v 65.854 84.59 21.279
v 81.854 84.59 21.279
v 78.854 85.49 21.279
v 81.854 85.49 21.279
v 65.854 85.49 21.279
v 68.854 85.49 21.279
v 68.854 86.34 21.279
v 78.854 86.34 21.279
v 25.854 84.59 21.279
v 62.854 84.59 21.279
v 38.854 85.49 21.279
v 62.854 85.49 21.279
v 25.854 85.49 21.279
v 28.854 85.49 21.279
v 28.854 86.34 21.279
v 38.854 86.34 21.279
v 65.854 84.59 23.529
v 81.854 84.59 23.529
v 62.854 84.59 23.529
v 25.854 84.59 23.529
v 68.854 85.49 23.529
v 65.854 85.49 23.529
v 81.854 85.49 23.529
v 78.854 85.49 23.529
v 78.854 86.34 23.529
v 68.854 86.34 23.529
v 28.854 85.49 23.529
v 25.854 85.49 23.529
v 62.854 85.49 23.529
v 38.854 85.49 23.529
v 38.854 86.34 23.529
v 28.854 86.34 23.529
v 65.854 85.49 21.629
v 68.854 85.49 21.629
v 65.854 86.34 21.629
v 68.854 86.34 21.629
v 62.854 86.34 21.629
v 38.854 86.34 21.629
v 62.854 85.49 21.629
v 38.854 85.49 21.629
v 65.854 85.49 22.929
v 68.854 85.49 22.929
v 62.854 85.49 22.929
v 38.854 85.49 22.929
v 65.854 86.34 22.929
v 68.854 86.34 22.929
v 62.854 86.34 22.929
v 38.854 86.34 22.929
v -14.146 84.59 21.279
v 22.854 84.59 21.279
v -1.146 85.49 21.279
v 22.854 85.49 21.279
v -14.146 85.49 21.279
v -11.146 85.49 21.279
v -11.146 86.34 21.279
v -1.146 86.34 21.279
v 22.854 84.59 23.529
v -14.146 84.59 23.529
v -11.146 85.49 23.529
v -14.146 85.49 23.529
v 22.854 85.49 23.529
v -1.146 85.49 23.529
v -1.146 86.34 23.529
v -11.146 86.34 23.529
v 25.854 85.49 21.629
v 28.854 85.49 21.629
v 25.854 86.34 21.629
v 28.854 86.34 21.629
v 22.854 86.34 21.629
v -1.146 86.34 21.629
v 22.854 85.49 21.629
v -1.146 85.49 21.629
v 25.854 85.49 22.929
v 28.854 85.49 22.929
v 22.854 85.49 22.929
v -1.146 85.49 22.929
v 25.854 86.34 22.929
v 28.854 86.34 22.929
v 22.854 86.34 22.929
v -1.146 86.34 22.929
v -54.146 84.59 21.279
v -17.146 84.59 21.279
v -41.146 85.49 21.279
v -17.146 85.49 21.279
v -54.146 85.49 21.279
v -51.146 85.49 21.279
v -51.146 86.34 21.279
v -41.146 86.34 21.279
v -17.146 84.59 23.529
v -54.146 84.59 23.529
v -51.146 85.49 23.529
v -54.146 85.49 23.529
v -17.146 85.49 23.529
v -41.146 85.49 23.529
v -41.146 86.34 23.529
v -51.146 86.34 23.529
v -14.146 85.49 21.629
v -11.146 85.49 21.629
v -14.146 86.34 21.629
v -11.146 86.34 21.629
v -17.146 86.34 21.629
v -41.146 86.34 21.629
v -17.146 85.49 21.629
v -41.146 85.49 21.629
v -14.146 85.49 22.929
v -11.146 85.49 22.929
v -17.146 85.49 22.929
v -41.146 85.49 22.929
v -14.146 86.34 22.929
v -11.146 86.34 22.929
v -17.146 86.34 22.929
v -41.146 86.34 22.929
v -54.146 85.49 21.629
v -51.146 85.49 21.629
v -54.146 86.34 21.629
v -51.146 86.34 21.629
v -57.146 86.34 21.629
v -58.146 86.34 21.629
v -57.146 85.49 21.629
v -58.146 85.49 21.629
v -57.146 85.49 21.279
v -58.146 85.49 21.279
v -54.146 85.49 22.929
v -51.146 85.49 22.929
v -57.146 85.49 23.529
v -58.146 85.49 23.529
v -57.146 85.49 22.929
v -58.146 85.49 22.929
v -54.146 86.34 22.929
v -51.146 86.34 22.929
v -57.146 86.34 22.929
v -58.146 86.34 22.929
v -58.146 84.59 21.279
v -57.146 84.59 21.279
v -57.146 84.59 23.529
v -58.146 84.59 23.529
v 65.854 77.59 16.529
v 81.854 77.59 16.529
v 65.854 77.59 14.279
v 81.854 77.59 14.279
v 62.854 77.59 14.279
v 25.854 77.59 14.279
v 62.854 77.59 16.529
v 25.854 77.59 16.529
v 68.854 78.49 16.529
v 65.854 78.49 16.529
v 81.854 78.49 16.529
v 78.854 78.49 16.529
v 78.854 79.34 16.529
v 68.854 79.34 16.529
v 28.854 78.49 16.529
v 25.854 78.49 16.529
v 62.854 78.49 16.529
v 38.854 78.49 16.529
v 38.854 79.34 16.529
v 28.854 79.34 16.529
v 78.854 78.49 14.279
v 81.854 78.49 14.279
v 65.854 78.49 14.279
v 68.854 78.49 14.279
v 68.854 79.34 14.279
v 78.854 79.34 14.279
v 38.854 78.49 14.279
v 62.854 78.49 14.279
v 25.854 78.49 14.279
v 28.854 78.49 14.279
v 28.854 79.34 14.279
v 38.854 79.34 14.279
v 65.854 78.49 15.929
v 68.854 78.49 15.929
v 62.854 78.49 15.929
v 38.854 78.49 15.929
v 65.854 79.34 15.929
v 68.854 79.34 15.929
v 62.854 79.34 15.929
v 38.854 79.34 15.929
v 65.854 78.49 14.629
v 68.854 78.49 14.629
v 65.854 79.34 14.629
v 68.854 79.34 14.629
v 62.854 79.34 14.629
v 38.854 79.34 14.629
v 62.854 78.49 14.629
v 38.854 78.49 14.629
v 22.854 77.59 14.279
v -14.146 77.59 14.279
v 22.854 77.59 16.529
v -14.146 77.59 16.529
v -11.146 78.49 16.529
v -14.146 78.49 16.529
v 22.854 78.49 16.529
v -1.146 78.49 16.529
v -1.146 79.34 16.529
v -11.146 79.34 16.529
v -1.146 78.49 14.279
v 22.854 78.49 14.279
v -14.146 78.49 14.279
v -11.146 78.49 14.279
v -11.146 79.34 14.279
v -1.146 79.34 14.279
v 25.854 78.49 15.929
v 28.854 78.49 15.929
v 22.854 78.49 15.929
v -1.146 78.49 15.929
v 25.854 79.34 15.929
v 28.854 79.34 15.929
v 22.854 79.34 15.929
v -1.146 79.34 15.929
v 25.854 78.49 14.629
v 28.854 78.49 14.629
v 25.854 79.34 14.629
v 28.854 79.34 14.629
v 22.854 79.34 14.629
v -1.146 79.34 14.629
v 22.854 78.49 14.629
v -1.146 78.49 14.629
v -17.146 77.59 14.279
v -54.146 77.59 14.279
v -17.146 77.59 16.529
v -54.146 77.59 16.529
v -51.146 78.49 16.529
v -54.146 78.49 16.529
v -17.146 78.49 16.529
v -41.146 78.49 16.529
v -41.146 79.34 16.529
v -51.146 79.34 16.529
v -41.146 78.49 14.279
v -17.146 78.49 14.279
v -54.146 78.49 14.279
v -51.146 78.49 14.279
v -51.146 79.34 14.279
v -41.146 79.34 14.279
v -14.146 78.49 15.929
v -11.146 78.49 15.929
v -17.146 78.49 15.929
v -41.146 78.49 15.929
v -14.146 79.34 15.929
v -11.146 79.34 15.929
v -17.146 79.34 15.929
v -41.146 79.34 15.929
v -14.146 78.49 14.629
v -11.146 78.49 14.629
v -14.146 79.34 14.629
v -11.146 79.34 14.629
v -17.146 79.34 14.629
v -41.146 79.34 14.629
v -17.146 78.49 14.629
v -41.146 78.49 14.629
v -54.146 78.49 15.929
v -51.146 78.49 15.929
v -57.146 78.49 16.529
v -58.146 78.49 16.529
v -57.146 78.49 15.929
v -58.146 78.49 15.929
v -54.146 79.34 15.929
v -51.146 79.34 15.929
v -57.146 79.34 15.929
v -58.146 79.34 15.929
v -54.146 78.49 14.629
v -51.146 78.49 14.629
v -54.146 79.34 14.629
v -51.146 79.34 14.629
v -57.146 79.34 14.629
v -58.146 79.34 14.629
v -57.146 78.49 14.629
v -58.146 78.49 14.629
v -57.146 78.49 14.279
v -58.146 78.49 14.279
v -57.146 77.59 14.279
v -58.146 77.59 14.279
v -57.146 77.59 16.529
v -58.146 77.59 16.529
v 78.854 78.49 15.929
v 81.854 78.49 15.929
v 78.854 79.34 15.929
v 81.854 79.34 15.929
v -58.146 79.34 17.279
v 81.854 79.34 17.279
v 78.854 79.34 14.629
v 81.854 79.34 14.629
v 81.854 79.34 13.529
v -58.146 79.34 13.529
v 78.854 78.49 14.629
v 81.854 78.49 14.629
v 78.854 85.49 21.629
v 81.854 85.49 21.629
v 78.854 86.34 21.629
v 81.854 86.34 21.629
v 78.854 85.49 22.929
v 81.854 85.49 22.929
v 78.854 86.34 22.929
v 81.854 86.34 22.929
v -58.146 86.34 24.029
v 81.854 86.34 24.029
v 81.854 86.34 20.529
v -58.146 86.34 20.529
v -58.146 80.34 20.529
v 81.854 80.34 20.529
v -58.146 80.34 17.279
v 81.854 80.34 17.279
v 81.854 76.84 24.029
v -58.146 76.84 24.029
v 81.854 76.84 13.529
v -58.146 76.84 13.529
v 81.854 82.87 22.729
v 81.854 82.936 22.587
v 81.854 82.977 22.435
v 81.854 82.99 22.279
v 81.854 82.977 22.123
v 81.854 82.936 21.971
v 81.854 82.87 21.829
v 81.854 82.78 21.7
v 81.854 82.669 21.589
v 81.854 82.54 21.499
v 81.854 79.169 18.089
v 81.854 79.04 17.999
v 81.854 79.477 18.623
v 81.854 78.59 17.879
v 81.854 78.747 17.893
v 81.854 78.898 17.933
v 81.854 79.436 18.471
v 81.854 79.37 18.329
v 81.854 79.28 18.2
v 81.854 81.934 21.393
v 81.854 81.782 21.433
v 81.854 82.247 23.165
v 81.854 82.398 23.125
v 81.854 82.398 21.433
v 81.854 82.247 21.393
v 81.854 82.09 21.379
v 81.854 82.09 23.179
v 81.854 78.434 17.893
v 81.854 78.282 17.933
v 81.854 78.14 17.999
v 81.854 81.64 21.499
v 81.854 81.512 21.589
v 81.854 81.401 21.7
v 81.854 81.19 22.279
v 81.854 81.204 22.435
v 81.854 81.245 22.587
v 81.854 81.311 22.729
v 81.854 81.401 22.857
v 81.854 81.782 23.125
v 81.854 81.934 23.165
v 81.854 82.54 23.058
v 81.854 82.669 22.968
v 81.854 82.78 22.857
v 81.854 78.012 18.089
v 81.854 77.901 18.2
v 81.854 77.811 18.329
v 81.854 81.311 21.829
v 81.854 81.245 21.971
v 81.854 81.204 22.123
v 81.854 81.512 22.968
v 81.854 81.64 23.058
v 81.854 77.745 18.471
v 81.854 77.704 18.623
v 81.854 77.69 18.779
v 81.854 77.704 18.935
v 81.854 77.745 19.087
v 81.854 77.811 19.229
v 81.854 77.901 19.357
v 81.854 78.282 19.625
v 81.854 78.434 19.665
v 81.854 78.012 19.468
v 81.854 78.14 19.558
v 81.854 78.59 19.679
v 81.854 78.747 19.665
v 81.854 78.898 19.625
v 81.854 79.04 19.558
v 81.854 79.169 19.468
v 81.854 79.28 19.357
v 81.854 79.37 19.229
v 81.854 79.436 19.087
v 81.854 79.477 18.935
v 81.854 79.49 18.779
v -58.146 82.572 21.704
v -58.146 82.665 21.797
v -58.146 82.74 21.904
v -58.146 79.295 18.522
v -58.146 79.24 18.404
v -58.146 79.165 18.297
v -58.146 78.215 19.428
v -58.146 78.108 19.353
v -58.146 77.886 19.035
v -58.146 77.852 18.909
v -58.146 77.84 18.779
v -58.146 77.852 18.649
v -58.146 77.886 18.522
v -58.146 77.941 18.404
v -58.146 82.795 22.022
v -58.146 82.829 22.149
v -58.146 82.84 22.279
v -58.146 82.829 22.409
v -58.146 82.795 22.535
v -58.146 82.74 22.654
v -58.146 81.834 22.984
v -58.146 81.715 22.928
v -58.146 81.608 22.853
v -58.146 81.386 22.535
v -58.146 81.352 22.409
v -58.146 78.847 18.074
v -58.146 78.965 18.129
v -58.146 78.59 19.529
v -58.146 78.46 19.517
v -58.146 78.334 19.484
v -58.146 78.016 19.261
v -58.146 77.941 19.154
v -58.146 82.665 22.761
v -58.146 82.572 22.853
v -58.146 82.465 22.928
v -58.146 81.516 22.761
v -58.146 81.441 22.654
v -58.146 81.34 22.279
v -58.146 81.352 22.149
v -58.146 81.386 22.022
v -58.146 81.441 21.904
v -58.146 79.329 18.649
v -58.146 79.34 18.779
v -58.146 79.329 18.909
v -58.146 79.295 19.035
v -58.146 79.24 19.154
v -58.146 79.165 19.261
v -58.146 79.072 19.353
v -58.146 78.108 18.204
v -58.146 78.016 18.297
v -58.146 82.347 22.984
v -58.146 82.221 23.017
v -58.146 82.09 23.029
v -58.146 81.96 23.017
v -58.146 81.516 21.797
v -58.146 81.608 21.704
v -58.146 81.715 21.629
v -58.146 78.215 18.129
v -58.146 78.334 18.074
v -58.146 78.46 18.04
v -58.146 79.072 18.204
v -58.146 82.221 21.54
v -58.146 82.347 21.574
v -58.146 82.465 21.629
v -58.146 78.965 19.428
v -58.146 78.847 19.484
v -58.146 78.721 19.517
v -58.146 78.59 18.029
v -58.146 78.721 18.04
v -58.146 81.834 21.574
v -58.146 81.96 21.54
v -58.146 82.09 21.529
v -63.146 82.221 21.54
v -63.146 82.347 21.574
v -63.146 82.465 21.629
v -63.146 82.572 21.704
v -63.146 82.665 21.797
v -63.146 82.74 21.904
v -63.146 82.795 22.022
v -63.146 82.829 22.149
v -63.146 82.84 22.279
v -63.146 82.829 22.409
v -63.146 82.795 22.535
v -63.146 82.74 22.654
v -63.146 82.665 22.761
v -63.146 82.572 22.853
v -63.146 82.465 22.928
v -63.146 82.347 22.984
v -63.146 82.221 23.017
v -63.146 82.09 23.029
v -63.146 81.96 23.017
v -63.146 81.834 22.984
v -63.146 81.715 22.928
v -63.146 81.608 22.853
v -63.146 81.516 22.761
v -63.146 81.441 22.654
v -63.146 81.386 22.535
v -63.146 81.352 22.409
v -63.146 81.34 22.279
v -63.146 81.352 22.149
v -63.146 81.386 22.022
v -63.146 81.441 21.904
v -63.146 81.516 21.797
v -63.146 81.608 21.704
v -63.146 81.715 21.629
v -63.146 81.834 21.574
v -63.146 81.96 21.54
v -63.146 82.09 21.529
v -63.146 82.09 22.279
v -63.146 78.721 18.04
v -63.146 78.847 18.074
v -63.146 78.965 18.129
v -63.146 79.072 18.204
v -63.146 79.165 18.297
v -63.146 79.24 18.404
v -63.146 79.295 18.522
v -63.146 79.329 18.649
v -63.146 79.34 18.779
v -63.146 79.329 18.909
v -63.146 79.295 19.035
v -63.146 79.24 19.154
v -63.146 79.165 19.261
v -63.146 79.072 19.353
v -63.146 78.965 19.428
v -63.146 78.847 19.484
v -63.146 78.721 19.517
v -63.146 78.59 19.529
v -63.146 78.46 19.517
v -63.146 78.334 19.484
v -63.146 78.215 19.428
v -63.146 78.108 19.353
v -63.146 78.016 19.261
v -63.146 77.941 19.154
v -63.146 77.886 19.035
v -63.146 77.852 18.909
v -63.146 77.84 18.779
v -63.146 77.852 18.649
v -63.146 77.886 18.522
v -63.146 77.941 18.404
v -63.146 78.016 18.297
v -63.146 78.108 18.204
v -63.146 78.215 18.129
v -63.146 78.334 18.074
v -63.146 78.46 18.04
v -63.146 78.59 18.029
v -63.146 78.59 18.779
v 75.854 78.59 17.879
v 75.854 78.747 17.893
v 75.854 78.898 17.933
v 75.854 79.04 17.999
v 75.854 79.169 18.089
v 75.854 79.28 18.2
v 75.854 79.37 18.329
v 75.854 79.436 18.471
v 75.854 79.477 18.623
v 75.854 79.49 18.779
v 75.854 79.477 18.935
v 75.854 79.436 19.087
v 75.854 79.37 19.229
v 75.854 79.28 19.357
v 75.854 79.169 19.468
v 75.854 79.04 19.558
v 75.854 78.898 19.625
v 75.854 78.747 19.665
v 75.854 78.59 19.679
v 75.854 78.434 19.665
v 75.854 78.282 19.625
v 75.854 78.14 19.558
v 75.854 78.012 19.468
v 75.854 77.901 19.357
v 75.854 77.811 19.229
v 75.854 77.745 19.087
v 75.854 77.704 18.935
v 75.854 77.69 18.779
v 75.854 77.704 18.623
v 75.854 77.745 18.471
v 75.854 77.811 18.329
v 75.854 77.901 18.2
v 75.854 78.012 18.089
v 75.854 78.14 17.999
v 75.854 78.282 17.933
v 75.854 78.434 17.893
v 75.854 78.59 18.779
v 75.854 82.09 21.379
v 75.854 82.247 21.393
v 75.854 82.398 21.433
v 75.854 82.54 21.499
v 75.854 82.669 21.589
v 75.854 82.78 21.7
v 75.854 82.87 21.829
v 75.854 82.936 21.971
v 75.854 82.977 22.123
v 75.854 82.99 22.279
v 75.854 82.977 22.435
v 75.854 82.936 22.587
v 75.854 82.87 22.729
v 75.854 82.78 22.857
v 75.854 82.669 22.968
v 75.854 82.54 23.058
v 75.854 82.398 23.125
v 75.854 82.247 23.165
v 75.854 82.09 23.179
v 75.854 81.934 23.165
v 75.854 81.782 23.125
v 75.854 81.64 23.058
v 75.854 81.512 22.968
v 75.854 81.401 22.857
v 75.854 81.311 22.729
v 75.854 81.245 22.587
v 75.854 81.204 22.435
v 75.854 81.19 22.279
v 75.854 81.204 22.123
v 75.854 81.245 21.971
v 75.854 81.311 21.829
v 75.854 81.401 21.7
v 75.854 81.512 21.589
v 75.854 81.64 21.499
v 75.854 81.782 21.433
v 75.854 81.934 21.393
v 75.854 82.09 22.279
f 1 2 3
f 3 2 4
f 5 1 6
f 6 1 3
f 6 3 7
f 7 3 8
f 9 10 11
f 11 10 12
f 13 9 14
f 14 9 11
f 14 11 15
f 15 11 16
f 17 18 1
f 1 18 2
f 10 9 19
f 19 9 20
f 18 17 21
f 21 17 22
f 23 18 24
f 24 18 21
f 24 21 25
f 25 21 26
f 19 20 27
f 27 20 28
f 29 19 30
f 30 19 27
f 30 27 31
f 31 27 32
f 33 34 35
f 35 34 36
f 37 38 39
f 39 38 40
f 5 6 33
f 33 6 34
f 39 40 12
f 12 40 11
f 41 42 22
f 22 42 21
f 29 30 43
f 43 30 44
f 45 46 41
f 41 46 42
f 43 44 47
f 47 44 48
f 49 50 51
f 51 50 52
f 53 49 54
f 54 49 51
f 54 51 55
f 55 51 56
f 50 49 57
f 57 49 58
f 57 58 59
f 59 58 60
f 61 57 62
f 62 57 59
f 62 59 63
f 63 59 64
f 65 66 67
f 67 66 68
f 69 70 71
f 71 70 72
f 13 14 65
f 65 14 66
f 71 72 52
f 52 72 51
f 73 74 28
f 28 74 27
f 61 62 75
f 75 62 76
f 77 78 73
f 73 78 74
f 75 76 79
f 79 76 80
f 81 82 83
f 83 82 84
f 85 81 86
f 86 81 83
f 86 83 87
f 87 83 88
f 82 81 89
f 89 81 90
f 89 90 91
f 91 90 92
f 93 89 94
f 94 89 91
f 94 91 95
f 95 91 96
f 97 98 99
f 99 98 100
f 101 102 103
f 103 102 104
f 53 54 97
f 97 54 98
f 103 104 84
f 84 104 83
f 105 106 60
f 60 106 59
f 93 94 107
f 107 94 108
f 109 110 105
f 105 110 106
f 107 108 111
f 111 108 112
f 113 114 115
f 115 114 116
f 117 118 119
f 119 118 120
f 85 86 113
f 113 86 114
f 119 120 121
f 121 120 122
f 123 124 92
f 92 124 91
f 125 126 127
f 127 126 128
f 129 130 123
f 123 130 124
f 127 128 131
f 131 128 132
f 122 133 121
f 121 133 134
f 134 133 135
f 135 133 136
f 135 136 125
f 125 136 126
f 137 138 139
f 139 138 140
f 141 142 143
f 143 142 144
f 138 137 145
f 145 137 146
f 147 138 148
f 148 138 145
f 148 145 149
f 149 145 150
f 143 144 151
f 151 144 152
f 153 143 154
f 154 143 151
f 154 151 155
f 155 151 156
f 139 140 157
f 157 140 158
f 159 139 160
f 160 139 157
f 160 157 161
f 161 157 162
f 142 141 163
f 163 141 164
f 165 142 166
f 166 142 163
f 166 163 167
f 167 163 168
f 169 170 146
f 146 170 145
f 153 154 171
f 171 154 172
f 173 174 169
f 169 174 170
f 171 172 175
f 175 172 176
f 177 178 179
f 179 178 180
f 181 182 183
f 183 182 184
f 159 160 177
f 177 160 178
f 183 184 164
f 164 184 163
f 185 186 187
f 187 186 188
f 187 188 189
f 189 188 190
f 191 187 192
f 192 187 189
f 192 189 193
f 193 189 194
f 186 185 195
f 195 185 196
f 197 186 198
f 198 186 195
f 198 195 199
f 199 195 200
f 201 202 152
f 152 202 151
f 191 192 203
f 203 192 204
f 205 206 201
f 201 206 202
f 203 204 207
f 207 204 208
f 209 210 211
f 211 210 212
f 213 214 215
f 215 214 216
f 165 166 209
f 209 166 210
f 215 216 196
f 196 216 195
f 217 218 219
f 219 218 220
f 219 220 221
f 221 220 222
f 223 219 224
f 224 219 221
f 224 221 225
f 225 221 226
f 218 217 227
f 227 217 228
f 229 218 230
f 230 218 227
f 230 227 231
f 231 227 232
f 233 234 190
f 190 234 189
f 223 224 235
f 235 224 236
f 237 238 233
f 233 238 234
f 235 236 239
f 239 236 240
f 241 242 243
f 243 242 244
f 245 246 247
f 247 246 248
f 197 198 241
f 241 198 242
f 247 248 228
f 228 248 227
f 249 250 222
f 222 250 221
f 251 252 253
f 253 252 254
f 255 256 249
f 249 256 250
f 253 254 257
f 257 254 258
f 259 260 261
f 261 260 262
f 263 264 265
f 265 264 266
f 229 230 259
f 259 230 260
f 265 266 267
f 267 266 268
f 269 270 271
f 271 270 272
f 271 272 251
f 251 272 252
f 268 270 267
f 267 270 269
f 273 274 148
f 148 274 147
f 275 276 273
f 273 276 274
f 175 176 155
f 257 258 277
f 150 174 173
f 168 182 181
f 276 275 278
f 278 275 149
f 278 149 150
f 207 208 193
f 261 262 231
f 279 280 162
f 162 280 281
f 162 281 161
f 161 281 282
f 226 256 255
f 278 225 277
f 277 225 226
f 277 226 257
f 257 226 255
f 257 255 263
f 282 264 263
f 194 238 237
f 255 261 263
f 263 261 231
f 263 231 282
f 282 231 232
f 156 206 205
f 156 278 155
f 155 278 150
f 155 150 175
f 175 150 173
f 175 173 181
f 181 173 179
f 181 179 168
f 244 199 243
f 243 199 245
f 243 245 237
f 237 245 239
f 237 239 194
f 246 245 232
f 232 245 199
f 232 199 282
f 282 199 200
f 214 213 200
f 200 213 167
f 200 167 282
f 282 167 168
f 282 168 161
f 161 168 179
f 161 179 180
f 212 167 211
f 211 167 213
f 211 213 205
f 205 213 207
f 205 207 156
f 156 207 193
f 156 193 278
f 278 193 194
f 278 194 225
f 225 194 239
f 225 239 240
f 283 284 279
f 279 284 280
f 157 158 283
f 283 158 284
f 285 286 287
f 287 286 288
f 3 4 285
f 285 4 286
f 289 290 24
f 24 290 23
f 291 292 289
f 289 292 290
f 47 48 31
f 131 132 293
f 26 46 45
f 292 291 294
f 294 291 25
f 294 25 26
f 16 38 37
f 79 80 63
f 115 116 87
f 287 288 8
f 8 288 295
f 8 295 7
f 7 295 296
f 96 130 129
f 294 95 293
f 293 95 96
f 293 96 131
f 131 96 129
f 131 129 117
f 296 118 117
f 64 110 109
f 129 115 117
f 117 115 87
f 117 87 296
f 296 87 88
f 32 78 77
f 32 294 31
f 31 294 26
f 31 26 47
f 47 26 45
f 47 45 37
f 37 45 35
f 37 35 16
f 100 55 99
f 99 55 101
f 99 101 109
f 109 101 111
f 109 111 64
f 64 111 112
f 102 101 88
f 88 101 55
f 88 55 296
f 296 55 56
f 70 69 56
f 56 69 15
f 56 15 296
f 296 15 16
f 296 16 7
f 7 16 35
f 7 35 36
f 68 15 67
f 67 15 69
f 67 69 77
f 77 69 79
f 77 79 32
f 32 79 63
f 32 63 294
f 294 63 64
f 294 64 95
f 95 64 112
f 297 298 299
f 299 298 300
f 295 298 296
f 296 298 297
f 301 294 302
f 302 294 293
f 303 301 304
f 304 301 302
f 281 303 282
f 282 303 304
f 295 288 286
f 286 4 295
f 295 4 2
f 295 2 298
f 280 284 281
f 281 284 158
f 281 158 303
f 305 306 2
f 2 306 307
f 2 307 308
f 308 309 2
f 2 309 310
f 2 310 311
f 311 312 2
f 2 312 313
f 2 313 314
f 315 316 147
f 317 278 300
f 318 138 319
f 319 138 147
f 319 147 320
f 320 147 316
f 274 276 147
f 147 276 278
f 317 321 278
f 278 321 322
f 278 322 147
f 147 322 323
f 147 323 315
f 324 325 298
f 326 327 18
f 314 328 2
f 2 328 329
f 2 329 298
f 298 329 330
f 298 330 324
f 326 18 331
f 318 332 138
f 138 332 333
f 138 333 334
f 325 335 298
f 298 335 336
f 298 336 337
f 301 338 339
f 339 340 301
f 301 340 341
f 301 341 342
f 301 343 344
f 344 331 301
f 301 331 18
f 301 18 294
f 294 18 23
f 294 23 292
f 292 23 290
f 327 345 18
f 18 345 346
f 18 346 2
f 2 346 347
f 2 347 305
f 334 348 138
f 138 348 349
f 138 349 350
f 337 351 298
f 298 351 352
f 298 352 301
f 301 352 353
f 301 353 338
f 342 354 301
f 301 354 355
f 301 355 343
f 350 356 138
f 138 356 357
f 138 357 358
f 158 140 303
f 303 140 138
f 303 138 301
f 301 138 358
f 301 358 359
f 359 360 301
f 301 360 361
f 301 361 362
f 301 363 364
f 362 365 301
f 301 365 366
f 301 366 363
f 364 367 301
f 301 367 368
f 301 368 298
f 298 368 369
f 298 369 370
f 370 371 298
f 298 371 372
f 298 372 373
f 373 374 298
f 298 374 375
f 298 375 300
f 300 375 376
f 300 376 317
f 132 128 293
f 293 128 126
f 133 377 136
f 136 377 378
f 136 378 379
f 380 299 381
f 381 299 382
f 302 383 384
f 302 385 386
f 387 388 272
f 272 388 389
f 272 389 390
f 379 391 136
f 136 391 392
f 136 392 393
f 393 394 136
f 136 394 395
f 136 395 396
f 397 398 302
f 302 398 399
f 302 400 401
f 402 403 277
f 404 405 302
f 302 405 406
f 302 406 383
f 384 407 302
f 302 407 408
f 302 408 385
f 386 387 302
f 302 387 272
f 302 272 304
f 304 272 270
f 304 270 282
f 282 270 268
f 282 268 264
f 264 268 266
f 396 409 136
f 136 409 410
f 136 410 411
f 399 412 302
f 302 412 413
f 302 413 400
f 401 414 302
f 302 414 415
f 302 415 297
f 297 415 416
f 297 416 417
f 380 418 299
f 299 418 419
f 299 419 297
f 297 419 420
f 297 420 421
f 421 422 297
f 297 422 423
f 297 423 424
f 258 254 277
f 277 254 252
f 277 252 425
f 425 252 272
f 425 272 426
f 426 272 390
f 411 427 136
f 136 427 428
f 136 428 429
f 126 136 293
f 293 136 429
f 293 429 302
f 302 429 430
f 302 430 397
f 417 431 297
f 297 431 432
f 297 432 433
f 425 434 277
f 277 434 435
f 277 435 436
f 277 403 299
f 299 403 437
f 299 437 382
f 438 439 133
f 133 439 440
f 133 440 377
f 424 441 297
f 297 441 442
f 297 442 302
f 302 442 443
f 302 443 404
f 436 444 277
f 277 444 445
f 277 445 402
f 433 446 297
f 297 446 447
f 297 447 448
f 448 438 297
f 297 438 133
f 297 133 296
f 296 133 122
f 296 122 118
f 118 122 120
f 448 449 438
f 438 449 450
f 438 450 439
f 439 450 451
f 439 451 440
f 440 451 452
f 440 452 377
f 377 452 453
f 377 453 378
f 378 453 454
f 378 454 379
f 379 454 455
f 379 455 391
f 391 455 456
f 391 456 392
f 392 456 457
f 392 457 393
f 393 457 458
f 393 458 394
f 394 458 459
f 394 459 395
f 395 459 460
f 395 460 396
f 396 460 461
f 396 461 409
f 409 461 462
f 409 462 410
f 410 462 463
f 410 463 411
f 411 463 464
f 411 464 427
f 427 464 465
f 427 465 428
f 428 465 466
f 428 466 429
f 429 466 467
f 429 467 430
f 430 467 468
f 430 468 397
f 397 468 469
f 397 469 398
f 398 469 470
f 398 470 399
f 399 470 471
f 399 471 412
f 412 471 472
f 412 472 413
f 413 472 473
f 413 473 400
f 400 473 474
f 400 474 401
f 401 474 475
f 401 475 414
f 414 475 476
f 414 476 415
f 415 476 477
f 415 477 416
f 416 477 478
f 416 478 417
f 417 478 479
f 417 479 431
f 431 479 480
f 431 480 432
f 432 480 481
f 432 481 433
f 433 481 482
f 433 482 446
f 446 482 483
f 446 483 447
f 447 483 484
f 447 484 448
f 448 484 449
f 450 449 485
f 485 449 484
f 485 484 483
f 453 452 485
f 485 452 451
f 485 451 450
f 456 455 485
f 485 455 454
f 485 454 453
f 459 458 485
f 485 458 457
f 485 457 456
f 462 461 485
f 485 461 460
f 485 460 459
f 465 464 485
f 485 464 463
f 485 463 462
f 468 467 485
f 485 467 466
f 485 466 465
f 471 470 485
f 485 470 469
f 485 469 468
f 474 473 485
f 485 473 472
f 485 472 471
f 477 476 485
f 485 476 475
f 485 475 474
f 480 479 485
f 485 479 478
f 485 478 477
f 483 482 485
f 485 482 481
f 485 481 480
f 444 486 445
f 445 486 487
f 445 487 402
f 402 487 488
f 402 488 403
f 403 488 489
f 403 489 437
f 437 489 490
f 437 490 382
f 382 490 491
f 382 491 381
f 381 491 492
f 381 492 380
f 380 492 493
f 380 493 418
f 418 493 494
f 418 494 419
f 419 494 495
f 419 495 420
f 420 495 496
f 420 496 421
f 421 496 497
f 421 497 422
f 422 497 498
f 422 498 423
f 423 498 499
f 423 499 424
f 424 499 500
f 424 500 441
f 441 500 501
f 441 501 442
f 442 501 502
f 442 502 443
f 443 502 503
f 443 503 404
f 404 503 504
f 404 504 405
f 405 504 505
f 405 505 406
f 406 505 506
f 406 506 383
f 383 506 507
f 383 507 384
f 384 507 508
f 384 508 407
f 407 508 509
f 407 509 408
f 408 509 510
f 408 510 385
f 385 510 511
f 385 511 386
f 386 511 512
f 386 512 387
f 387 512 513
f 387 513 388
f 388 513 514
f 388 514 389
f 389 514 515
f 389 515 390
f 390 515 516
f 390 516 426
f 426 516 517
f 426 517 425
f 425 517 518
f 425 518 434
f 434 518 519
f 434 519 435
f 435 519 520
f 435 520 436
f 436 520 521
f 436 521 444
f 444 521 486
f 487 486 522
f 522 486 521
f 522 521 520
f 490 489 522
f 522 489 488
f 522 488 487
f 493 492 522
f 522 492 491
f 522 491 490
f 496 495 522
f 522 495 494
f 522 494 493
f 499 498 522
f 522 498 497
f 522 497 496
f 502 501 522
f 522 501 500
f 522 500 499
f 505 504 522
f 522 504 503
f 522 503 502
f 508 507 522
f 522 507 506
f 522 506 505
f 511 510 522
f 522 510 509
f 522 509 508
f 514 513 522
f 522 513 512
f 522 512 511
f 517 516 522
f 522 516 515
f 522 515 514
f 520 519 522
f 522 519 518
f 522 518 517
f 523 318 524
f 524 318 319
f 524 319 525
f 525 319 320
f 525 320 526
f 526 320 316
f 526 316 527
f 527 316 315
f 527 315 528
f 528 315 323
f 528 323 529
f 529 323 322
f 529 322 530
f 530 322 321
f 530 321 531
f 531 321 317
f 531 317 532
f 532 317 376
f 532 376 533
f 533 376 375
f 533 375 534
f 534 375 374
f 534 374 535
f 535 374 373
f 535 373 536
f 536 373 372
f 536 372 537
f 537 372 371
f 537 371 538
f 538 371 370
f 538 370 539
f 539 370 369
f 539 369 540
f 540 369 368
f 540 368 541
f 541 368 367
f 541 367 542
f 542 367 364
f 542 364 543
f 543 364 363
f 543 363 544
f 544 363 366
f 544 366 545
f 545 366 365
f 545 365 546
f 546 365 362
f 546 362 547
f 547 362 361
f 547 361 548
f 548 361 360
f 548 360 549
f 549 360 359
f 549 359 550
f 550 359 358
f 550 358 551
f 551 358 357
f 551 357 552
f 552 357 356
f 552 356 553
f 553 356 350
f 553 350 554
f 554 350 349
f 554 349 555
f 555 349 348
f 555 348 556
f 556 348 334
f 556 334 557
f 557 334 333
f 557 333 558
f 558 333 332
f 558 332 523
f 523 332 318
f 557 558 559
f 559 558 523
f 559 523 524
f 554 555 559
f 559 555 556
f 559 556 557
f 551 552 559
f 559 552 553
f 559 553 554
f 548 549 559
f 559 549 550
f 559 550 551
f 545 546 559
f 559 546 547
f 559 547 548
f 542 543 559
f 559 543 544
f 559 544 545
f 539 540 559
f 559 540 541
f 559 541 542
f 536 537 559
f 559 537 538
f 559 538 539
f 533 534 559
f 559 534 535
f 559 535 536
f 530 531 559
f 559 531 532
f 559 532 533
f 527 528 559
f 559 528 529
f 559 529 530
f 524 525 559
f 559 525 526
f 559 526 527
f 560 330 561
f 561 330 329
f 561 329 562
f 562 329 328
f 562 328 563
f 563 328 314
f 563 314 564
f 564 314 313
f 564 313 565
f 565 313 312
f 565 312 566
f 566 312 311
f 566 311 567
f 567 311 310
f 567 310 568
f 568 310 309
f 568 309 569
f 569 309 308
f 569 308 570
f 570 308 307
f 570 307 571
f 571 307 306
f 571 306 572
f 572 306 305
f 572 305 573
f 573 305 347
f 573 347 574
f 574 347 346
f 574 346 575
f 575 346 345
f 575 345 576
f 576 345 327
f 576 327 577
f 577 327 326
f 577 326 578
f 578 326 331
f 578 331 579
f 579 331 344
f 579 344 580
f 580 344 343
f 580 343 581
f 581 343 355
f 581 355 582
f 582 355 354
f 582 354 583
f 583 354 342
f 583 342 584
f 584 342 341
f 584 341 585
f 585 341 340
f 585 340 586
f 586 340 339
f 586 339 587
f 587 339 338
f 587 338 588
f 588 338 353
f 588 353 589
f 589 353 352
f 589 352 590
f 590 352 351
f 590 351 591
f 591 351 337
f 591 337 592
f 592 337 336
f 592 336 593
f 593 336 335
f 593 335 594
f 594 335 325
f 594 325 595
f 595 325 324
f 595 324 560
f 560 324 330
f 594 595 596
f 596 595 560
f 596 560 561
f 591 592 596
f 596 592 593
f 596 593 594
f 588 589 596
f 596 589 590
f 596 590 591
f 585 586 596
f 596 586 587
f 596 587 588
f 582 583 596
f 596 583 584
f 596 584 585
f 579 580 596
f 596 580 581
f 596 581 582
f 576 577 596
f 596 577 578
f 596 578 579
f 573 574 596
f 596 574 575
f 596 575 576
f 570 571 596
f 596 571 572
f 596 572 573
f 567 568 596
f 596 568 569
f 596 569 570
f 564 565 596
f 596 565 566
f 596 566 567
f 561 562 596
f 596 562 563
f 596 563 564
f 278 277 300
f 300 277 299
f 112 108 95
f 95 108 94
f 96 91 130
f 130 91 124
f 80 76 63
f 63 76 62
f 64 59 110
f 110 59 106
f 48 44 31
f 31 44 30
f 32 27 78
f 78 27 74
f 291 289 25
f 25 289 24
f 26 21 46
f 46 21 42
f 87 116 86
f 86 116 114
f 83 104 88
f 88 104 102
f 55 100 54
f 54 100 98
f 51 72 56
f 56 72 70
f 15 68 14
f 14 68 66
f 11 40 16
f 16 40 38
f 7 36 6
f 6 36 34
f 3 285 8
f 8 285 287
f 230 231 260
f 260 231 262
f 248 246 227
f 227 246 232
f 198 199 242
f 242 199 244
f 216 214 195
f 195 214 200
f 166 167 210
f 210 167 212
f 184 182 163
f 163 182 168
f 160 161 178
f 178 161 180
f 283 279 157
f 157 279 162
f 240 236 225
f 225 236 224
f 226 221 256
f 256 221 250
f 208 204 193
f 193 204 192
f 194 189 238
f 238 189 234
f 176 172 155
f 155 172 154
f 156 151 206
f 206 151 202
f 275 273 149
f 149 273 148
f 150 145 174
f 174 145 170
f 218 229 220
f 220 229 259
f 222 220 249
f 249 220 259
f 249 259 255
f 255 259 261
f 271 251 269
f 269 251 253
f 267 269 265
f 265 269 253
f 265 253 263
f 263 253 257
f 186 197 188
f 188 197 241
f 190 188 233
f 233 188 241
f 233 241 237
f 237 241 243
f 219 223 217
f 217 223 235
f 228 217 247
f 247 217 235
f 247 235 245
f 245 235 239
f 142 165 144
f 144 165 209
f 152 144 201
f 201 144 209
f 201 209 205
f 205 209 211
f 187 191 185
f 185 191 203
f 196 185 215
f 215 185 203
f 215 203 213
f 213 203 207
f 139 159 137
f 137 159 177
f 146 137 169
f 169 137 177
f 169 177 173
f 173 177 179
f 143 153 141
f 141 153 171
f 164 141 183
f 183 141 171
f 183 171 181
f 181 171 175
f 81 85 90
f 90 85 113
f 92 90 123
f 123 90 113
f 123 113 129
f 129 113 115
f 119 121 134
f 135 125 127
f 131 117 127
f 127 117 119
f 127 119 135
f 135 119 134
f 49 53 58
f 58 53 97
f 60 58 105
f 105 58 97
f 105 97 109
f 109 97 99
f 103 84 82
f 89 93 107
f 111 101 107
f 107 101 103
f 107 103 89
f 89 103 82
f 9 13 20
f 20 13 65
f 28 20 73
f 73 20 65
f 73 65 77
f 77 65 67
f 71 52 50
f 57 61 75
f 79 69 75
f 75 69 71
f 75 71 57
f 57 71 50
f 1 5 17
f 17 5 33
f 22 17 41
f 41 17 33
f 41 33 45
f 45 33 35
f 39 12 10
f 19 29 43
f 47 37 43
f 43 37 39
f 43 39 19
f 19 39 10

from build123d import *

# Parameters (mm, degrees)
BOSS_EXTRUDE1_DEPTH = 140
SKETCH1_5_R         = 0.75
BOSS_EXTRUDE2_DEPTH = 5
SKETCH2_R           = 0.9
SKETCH2_R_2         = 0.75
CUT_EXTRUDE1_DEPTH  = 6
SKETCH3_W           = 0.25
SKETCH3_H           = 1
CUT_EXTRUDE2_DEPTH  = 171.461242575
SKETCH4_W           = 10
SKETCH4_H           = 2.25
CUT_EXTRUDE3_DEPTH  = 86.659037056
SKETCH6_W           = 10
SKETCH6_H           = 2.25
CUT_EXTRUDE4_DEPTH  = 86.755295051
BOSS_EXTRUDE3_REACH = 87.755
SKETCH7_W           = 3
SKETCH7_H           = 2.25
SKETCH8_W           = 3
SKETCH8_H           = 2.25
BOSS_EXTRUDE4_DEPTH = 1.75


with BuildPart() as part:
    # Sketch1 → Boss-Extrude1 (new body)
    with BuildSketch(Plane(origin=(-58.146340827, 0, 0), x_dir=(0, 0, -1), z_dir=(1, 0, 0))):
        Polygon((-20.52887033, 86.340306989), (-21.62887033, 86.340306989), (-21.62887033, 85.490306989), (-21.27887033, 85.490306989), (-21.27887033, 84.590306989), (-23.52887033, 84.590306989), (-23.52887033, 85.490306989), (-22.92887033, 85.490306989), (-22.92887033, 86.340306989), (-24.02887033, 86.340306989), (-24.02887033, 76.840306989), (-13.52887033, 76.840306989), (-13.52887033, 79.340306989), (-14.62887033, 79.340306989), (-14.62887033, 78.490306989), (-14.27887033, 78.490306989), (-14.27887033, 77.590306989), (-16.52887033, 77.590306989), (-16.52887033, 78.490306989), (-15.92887033, 78.490306989), (-15.92887033, 79.340306989), (-17.02887033, 79.340306989), (-17.02887033, 80.340306989), (-20.52887033, 80.340306989), align=None)
    extrude(amount=BOSS_EXTRUDE1_DEPTH)

    # Sketch1<5> → Boss-Extrude2 (add)
    with BuildSketch(Plane(origin=(-58.146340827, 0, 0), x_dir=(0, 0, -1), z_dir=(1, 0, 0))):
        with Locations((-22.27887033, 82.090306989)):
            Circle(SKETCH1_5_R)
        with Locations((-18.77887033, 78.590306989)):
            Circle(SKETCH1_5_R)
    extrude(amount=-BOSS_EXTRUDE2_DEPTH)

    # Sketch2 → Cut-Extrude1 (cut)
    with BuildSketch(Plane(origin=(81.853659173, 0, 0), x_dir=(0, 0, -1), z_dir=(1, 0, 0))):
        with Locations((-22.27887033, 82.090306989)):
            Circle(SKETCH2_R)
        with Locations((-22.27887033, 82.090306989)):
            Circle(SKETCH2_R_2, mode=Mode.SUBTRACT)
        with Locations((-22.27887033, 82.090306989)):
            Circle(SKETCH2_R_2)
        with Locations((-18.77887033, 78.590306989)):
            Circle(SKETCH2_R)
        with Locations((-18.77887033, 78.590306989)):
            Circle(SKETCH2_R_2, mode=Mode.SUBTRACT)
        with Locations((-18.77887033, 78.590306989)):
            Circle(SKETCH2_R_2)
    extrude(amount=-CUT_EXTRUDE1_DEPTH, mode=Mode.SUBTRACT)

    # Sketch3 → Cut-Extrude2 (cut, through all)
    with BuildSketch(Plane(origin=(81.853659173, 0, 0), x_dir=(0, 0, -1), z_dir=(1, 0, 0))):
        with Locations((-17.15387033, 79.840306989)):
            Rectangle(SKETCH3_W, SKETCH3_H)
    extrude(amount=-CUT_EXTRUDE2_DEPTH, mode=Mode.SUBTRACT)

    # Sketch4 → Cut-Extrude3 (cut, through all)
    with BuildSketch(Plane(origin=(0, 84.590306989, 0), x_dir=(1, 0, 0), z_dir=(0, 1, 0))):
        with Locations((73.853659173, -22.40387033)):
            Rectangle(SKETCH4_W, SKETCH4_H)
        with Locations((33.853659173, -22.40387033)):
            Rectangle(SKETCH4_W, SKETCH4_H)
        with Locations((-6.146340827, -22.40387033)):
            Rectangle(SKETCH4_W, SKETCH4_H)
        with Locations((-46.146340827, -22.40387033)):
            Rectangle(SKETCH4_W, SKETCH4_H)
    extrude(amount=CUT_EXTRUDE3_DEPTH, mode=Mode.SUBTRACT)

    # Sketch6 → Cut-Extrude4 (cut, through all)
    with BuildSketch(Plane(origin=(0, 77.590306989, 0), x_dir=(1, 0, 0), z_dir=(0, 1, 0))):
        with Locations((73.853659173, -15.40387033)):
            Rectangle(SKETCH6_W, SKETCH6_H)
        with Locations((33.853659173, -15.40387033)):
            Rectangle(SKETCH6_W, SKETCH6_H)
        with Locations((-6.146340827, -15.40387033)):
            Rectangle(SKETCH6_W, SKETCH6_H)
        with Locations((-46.146340827, -15.40387033)):
            Rectangle(SKETCH6_W, SKETCH6_H)
    extrude(amount=CUT_EXTRUDE4_DEPTH, mode=Mode.SUBTRACT)

    # Boss-Extrude3: up to this face of the body (flat: up to its plane)
    boss_extrude3_end = Plane(part.part.faces().sort_by_distance((11.653659173, 79.340306989, 14.04137033))[0])
    # Sketch7 → Boss-Extrude3 (add, up to the picked face)
    with BuildSketch(Plane(origin=(0, 77.590306989, 0), x_dir=(1, 0, 0), z_dir=(0, 1, 0)), mode=Mode.PRIVATE) as boss_extrude3_sk1:
        with Locations((-55.646340827, -15.40387033)):
            Rectangle(SKETCH7_W, SKETCH7_H)
    boss_extrude3_tool1 = split(extrude(boss_extrude3_sk1.sketch, amount=BOSS_EXTRUDE3_REACH, mode=Mode.PRIVATE), bisect_by=boss_extrude3_end, keep=Keep.BOTH, mode=Mode.PRIVATE)
    # Sketch7 → Boss-Extrude3 (add, up to the picked face)
    with BuildSketch(Plane(origin=(0, 77.590306989, 0), x_dir=(1, 0, 0), z_dir=(0, 1, 0)), mode=Mode.PRIVATE) as boss_extrude3_sk2:
        with Locations((-15.646340827, -15.40387033)):
            Rectangle(SKETCH7_W, SKETCH7_H)
    boss_extrude3_tool2 = split(extrude(boss_extrude3_sk2.sketch, amount=BOSS_EXTRUDE3_REACH, mode=Mode.PRIVATE), bisect_by=boss_extrude3_end, keep=Keep.BOTH, mode=Mode.PRIVATE)
    # Sketch7 → Boss-Extrude3 (add, up to the picked face)
    with BuildSketch(Plane(origin=(0, 77.590306989, 0), x_dir=(1, 0, 0), z_dir=(0, 1, 0)), mode=Mode.PRIVATE) as boss_extrude3_sk3:
        with Locations((24.353659173, -15.40387033)):
            Rectangle(SKETCH7_W, SKETCH7_H)
    boss_extrude3_tool3 = split(extrude(boss_extrude3_sk3.sketch, amount=BOSS_EXTRUDE3_REACH, mode=Mode.PRIVATE), bisect_by=boss_extrude3_end, keep=Keep.BOTH, mode=Mode.PRIVATE)
    # Sketch7 → Boss-Extrude3 (add, up to the picked face)
    with BuildSketch(Plane(origin=(0, 77.590306989, 0), x_dir=(1, 0, 0), z_dir=(0, 1, 0)), mode=Mode.PRIVATE) as boss_extrude3_sk4:
        with Locations((64.353659173, -15.40387033)):
            Rectangle(SKETCH7_W, SKETCH7_H)
    boss_extrude3_tool4 = split(extrude(boss_extrude3_sk4.sketch, amount=BOSS_EXTRUDE3_REACH, mode=Mode.PRIVATE), bisect_by=boss_extrude3_end, keep=Keep.BOTH, mode=Mode.PRIVATE)
    add(boss_extrude3_tool1.solids().sort_by(Axis((-55.646341, 77.590307, 15.40387), (0, 1, 0)))[0])
    add(boss_extrude3_tool2.solids().sort_by(Axis((-15.646341, 77.590307, 15.40387), (0, 1, 0)))[0])
    add(boss_extrude3_tool3.solids().sort_by(Axis((24.353659, 77.590307, 15.40387), (0, 1, 0)))[0])
    add(boss_extrude3_tool4.solids().sort_by(Axis((64.353659, 77.590307, 15.40387), (0, 1, 0)))[0])

    # Sketch8 → Boss-Extrude4 (add)
    with BuildSketch(Plane(origin=(0, 84.590306989, 0), x_dir=(1, 0, 0), z_dir=(0, 1, 0))):
        with Locations((-55.646340827, -22.40387033)):
            Rectangle(SKETCH8_W, SKETCH8_H)
        with Locations((-15.646340827, -22.40387033)):
            Rectangle(SKETCH8_W, SKETCH8_H)
        with Locations((24.353659173, -22.40387033)):
            Rectangle(SKETCH8_W, SKETCH8_H)
        with Locations((64.353659173, -22.40387033)):
            Rectangle(SKETCH8_W, SKETCH8_H)
    extrude(amount=BOSS_EXTRUDE4_DEPTH)


solid = part.part
